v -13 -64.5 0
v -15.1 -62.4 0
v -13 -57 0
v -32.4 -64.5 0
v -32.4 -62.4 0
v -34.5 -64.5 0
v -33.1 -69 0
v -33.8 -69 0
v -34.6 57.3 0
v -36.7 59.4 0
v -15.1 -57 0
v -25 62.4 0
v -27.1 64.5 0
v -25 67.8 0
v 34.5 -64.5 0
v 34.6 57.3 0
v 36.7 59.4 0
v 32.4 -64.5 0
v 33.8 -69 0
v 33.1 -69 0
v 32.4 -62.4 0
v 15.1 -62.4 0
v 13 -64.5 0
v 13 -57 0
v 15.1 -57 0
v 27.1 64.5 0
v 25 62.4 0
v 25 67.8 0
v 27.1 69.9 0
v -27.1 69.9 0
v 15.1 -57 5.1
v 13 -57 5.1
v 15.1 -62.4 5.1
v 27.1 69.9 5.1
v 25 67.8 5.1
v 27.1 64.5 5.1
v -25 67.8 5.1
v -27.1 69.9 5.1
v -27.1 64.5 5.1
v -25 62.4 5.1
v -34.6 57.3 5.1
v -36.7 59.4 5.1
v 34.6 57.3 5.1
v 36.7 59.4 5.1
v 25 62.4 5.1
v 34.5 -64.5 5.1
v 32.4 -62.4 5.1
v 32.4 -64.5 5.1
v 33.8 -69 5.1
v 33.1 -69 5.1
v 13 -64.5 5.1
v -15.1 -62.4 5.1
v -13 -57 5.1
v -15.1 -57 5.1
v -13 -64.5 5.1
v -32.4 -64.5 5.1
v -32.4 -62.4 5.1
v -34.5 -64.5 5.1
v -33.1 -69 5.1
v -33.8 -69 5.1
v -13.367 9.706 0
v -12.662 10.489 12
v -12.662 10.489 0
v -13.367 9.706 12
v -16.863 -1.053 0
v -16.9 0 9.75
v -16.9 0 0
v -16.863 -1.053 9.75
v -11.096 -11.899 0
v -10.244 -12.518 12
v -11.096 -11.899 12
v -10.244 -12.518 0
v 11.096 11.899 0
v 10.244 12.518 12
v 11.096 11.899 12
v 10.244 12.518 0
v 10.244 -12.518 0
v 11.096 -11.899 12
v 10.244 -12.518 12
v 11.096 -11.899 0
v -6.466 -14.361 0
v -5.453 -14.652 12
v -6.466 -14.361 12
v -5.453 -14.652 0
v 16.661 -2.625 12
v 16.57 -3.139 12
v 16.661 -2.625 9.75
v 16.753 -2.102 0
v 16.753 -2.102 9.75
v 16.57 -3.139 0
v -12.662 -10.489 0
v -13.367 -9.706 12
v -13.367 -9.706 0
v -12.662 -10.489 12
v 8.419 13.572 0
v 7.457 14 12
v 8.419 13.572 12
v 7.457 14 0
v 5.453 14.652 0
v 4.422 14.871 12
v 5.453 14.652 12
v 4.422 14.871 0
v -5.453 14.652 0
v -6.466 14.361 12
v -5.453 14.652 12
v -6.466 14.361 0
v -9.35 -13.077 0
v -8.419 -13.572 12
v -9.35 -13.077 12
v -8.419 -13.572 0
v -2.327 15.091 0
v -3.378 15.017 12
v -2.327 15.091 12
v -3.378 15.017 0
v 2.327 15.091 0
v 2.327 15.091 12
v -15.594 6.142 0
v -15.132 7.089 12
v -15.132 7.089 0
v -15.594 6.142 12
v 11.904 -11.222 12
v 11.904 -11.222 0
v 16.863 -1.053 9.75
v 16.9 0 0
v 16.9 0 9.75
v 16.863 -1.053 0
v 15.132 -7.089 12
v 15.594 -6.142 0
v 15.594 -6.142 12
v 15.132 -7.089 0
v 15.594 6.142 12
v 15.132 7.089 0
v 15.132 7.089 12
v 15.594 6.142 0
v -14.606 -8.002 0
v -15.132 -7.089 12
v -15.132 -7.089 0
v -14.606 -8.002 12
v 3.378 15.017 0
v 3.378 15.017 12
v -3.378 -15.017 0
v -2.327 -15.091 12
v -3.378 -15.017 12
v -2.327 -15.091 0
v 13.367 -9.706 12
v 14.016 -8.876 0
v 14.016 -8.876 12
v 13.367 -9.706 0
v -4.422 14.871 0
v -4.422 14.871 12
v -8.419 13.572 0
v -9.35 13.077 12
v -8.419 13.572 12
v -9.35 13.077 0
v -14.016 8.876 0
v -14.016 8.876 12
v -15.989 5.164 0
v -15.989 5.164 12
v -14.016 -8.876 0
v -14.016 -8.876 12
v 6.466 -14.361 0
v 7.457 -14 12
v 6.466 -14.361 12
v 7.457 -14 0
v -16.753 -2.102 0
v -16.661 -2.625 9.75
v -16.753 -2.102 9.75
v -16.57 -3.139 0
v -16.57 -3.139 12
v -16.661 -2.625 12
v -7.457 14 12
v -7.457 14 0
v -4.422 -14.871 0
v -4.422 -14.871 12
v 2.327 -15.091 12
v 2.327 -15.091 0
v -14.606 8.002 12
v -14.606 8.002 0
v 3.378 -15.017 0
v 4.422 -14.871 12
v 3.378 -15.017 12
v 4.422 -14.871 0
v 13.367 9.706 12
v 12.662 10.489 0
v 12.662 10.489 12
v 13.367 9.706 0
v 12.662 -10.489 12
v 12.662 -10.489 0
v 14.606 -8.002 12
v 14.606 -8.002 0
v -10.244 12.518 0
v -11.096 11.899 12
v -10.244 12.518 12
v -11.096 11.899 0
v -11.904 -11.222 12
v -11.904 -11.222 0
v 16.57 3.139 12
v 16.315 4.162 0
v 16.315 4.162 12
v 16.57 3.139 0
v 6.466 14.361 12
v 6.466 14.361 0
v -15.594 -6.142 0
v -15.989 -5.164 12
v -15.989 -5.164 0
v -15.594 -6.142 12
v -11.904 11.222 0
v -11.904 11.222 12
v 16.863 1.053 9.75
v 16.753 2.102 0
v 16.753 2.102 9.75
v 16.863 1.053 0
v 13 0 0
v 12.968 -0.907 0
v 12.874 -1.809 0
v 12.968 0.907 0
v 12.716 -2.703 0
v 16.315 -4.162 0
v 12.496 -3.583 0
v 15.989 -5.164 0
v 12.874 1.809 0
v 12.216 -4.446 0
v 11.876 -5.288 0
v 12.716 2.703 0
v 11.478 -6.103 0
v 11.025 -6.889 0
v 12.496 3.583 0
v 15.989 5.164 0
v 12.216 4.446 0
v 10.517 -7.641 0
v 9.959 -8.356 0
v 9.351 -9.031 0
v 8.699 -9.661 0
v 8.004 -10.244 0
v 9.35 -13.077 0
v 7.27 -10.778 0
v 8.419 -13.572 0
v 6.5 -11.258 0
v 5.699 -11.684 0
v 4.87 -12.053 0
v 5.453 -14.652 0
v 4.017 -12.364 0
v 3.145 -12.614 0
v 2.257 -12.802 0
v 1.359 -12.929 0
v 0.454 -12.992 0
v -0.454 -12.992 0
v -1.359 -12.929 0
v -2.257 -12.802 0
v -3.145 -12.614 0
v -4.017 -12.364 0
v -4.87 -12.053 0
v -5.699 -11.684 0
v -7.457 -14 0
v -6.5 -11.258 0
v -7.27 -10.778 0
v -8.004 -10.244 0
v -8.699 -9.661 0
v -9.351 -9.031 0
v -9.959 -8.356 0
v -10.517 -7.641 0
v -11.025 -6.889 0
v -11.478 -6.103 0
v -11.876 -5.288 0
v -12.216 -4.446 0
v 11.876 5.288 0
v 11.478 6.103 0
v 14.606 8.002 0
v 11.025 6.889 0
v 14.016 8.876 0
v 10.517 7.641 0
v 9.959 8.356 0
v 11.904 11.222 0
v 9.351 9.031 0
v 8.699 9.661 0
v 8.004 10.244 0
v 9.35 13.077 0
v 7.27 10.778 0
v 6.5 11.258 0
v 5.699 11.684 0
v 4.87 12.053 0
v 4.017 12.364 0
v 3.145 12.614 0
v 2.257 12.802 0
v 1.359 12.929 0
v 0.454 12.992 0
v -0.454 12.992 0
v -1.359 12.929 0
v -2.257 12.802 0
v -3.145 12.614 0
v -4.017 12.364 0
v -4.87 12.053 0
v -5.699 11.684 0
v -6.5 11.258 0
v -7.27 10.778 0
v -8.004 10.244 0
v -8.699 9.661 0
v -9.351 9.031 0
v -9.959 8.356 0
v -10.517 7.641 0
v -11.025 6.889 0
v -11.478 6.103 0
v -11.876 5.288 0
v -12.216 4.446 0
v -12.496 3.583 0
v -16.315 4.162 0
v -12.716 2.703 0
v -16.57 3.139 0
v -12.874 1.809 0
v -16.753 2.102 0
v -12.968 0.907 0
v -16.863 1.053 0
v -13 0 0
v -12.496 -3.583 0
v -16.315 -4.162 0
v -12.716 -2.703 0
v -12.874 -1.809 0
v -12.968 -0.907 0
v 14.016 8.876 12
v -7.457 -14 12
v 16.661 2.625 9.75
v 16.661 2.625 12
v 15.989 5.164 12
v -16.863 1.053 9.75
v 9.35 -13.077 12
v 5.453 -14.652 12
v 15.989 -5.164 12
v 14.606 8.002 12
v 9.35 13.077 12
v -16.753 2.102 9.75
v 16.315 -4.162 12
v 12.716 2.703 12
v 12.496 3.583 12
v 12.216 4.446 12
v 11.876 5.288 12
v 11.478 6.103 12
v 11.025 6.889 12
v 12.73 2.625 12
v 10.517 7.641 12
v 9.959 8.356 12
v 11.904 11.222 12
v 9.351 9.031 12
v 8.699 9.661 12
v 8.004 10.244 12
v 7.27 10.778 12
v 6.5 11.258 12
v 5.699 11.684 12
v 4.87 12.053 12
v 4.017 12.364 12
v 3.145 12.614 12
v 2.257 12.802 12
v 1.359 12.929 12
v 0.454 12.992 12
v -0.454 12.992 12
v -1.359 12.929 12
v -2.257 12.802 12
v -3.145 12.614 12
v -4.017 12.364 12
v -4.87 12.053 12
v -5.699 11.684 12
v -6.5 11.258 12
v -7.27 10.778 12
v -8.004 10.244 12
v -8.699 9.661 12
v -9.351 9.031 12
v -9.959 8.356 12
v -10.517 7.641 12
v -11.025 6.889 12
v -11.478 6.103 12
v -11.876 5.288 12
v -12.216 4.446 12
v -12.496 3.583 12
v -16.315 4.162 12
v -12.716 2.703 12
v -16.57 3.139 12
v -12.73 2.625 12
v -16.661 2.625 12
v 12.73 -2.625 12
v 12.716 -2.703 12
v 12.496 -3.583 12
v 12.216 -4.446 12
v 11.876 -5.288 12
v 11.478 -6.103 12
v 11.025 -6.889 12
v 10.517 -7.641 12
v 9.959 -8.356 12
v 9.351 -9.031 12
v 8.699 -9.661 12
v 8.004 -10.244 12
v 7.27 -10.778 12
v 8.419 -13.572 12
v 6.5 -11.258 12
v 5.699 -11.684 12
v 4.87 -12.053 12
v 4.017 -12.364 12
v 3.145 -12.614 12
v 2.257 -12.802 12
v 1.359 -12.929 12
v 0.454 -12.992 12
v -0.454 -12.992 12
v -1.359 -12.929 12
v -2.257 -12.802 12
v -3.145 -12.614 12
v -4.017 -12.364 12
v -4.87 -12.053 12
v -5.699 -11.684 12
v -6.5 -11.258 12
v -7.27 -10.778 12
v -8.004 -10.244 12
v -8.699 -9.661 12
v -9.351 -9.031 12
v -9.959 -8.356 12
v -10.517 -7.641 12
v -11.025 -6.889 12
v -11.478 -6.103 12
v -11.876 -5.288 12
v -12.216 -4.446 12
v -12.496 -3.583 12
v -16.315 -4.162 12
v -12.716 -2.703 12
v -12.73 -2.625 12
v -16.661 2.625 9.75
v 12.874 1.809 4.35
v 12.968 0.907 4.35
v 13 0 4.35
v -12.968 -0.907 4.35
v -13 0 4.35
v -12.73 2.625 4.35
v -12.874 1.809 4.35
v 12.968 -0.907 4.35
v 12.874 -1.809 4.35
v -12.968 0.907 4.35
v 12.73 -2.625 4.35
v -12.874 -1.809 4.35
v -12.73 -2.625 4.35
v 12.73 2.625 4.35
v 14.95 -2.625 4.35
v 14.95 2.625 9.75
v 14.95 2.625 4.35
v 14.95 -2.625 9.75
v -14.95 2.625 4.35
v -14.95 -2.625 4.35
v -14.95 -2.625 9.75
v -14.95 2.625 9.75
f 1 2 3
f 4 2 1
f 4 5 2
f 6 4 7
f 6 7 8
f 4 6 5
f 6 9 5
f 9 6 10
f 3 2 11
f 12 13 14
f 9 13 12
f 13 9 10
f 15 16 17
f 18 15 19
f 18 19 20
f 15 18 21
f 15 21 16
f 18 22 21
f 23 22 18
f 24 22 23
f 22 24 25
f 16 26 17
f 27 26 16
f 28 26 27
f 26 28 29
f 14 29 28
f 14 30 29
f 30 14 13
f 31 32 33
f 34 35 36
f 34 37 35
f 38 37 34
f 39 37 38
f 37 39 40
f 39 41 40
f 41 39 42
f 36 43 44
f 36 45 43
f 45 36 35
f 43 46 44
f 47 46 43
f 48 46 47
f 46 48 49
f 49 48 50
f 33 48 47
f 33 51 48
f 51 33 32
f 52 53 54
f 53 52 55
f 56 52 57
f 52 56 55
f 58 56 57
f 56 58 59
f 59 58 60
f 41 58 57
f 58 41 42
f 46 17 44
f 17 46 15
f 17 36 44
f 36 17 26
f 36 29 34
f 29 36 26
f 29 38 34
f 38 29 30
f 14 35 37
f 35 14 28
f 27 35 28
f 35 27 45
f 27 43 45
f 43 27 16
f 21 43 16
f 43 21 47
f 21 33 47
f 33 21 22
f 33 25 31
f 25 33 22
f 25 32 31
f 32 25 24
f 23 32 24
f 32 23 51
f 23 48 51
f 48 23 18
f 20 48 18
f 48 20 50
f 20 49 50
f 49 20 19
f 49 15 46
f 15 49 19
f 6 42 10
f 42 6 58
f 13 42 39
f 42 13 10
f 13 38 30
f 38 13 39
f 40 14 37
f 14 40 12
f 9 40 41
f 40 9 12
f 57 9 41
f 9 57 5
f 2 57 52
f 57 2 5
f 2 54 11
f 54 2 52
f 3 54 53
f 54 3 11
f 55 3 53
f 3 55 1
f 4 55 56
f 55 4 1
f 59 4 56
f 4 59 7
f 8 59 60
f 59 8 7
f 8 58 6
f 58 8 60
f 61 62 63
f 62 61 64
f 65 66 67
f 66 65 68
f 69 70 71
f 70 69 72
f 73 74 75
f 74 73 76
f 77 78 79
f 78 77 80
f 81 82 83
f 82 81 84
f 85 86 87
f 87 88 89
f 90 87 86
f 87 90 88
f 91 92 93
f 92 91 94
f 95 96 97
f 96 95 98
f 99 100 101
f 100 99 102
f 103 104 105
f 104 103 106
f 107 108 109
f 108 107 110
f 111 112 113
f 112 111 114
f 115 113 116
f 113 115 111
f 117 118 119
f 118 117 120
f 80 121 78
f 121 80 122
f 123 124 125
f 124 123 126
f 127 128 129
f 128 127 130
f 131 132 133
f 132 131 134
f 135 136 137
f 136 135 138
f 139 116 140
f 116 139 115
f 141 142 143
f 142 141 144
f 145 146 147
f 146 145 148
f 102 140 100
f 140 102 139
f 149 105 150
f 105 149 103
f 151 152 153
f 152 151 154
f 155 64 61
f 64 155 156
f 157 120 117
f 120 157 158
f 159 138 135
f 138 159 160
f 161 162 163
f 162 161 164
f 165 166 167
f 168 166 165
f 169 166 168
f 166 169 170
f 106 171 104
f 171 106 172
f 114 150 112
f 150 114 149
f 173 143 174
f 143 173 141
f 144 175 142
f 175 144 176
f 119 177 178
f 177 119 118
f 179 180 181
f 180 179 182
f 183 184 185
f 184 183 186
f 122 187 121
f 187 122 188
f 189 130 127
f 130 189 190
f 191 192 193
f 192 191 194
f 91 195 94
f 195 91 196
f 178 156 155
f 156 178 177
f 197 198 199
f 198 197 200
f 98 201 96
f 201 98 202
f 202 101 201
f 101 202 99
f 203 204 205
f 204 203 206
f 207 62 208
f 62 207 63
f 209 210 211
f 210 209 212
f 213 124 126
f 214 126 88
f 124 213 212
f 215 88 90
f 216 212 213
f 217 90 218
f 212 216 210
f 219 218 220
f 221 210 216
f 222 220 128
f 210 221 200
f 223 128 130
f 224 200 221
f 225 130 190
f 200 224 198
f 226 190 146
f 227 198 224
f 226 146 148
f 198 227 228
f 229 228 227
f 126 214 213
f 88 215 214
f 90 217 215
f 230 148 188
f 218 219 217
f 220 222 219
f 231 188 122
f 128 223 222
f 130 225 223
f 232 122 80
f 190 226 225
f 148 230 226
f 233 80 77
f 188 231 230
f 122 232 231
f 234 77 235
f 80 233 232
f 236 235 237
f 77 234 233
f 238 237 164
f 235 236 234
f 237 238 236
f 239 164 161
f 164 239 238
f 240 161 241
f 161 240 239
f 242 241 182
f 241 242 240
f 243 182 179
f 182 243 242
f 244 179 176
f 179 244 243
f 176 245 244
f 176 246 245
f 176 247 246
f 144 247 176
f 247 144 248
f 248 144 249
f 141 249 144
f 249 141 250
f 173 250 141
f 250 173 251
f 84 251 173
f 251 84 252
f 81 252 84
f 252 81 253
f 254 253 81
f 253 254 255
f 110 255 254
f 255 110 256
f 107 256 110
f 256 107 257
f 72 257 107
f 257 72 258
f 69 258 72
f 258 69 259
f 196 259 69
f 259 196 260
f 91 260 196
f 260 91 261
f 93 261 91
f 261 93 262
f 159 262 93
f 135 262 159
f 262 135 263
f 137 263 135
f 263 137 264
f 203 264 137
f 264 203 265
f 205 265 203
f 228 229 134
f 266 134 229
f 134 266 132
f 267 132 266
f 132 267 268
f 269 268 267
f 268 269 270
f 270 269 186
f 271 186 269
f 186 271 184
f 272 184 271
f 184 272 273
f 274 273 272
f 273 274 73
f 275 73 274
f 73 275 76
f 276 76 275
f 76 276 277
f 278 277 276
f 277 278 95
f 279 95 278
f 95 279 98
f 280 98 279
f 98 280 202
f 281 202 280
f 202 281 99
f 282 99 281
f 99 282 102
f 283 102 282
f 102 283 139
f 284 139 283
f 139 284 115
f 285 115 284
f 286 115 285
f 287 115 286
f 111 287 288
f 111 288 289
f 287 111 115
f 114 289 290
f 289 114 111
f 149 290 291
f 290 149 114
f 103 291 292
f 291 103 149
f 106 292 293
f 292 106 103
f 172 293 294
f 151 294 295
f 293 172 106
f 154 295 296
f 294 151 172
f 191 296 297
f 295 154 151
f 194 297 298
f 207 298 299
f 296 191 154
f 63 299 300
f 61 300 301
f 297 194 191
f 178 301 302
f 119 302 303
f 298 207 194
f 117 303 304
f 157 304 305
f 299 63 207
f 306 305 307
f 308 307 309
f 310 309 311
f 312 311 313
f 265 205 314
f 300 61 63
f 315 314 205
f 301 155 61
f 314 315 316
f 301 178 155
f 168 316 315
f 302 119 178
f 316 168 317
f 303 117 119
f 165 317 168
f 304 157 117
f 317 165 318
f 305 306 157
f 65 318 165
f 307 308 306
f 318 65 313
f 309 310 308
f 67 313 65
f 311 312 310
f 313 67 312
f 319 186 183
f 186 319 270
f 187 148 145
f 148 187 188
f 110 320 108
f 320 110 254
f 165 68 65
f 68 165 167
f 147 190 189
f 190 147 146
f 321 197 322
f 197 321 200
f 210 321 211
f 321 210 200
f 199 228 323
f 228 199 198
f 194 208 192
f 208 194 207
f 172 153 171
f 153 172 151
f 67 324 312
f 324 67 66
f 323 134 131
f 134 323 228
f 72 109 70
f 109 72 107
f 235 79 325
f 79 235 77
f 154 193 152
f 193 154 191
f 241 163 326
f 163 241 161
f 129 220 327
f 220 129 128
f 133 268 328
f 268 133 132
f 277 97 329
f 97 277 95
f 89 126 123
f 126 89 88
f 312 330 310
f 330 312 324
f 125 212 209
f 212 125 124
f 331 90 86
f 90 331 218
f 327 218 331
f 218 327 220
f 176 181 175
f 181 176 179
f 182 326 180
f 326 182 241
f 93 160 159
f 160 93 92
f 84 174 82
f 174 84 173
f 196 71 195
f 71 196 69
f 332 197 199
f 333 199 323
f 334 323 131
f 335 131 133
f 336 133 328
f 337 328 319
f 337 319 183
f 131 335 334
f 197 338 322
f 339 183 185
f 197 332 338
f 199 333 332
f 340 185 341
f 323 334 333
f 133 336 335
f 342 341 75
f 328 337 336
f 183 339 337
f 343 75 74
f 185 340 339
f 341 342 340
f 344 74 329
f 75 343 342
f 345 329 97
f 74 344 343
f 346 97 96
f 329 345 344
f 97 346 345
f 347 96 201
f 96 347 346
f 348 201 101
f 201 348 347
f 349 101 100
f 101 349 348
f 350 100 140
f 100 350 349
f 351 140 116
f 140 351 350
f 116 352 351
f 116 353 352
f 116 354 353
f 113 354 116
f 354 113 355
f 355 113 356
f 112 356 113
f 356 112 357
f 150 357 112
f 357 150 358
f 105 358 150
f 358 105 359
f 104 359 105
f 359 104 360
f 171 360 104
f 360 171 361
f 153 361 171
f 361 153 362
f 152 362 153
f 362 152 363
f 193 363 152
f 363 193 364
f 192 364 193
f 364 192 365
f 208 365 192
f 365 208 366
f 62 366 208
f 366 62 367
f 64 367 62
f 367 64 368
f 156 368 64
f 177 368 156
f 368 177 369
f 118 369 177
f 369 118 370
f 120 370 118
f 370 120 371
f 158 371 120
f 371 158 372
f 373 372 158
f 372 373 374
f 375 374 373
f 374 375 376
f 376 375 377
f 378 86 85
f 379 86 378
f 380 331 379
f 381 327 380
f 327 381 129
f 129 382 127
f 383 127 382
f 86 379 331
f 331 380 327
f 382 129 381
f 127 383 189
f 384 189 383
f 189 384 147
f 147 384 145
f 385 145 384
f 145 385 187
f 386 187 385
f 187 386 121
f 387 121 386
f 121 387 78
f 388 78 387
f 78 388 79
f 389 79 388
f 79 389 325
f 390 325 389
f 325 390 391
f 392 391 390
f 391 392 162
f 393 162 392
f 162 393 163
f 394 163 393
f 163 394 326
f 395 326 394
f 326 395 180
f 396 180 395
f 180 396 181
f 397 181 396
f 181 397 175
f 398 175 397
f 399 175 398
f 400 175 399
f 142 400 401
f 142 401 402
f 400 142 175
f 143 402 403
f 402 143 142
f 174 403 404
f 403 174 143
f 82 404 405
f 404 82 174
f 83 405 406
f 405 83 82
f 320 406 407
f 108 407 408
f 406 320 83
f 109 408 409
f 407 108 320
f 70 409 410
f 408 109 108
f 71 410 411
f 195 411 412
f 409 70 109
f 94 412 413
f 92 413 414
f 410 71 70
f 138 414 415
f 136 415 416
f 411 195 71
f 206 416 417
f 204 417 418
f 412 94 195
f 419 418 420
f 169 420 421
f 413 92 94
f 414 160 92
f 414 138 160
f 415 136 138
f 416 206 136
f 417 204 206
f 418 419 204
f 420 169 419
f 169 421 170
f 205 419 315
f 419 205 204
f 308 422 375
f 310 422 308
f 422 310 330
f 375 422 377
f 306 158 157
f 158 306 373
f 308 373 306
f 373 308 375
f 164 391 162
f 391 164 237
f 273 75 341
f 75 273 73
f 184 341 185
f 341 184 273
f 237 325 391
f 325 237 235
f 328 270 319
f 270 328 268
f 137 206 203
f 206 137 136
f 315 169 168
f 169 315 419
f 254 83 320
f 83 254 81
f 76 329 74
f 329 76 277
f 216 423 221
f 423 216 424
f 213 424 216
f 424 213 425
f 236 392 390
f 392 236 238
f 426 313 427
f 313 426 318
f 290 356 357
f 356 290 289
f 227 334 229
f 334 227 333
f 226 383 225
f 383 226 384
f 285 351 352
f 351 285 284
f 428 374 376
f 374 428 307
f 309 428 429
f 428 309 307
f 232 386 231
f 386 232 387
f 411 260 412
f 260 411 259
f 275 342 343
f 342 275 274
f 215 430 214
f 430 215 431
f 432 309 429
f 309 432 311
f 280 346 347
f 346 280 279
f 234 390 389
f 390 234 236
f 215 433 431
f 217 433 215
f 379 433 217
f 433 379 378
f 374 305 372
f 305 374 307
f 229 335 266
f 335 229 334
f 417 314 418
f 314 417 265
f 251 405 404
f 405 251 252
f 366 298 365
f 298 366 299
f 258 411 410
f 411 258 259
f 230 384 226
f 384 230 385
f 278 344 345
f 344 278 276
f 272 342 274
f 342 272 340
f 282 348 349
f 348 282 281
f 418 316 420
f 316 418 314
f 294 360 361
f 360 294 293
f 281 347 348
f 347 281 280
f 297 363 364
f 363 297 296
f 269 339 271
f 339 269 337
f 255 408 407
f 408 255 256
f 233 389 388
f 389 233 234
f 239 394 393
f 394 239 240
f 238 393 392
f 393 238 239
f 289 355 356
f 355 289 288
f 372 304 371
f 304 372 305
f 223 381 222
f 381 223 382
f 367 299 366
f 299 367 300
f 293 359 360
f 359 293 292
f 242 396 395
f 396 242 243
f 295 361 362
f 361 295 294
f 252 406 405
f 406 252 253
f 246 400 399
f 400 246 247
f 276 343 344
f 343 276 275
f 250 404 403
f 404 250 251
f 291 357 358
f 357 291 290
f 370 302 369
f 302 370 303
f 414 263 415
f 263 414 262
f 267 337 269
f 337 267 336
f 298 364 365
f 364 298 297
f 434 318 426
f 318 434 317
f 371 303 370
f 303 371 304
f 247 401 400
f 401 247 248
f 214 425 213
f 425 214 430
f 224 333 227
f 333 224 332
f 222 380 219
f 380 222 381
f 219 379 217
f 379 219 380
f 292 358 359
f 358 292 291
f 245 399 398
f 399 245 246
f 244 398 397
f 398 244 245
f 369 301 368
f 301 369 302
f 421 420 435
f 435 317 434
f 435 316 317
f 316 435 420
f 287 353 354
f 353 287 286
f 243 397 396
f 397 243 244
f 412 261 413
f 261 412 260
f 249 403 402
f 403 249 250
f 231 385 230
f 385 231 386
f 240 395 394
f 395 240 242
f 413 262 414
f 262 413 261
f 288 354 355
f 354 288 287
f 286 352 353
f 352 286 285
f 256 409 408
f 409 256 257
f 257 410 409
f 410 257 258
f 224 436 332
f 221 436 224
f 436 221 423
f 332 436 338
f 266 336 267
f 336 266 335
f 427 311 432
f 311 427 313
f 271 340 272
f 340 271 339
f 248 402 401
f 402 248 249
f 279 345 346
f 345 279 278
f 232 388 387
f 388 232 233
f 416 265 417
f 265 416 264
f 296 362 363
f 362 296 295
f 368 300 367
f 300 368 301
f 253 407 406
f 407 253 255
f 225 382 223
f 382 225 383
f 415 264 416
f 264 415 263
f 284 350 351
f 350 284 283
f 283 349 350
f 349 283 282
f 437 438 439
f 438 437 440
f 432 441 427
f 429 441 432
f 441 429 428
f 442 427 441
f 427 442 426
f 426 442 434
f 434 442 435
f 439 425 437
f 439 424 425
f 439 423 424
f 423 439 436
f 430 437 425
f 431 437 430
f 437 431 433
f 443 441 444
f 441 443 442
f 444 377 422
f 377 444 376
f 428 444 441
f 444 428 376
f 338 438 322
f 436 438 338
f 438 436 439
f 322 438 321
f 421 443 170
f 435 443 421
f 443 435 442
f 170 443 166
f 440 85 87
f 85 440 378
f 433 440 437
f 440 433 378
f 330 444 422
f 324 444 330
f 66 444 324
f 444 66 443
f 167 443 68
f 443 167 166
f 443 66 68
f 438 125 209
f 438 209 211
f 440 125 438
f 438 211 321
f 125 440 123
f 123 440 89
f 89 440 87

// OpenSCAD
top_diameter    =  50.0;  // Diameter of top opening (corrected)
shoulder_length =   7.5;  // Exterior length of shoulder
shoulder_slump  =   5.1;  // How far down the lower edge of the shoulder goes
neck_height     =   5.4;  // How high up the neck of the top frame protrudes
light_diameter  =  26.0;  // Exterior diameter of flashlight head (corrected)
interior_height = 129.0;  // From top of bottom wire posts to top shoulder

frame_width     =   5.1;  // Width of the A-frame (along latitudinal direction)
frame_thickness =   2.1;  // Thickness of A-frame (inwards to center)
peg_height      =   5.4;  // Height of peg connecting A-frame with collet
peg_thickness   =   1.5;  // Thickness of peg connecting A-frame with collet
peg_depth       =   4.5;  // How far down the peg goes into the post
bottom_post_gap =  69.0;  // Gap between wire posts on bottom support
// Off by 9mm???

collet_small_thickness = 2.1;
collet_large_thickness = peg_thickness + collet_small_thickness;
collet_height = frame_thickness + peg_height + 4.5;

top_radius = top_diameter / 2;
light_radius = light_diameter / 2;
bottom_post_radius = bottom_post_gap / 2;

cgap = 0.15;  // Correction gap
cgap2 = cgap * 2;

e = 0.1;
e2 = e * 2;
$fn = 90;

module aframe() {
  r = light_radius;     // TODO: should be diffuser radius
  t = frame_thickness;
  t2 = t * 2;
  module aframe_polygon() {
    polygon([
      [r, t + peg_height],
      [r + t, t + peg_height],
      [r + t, t],
      [bottom_post_radius - t, t],
      [top_radius + t + shoulder_length, interior_height - t - shoulder_slump],
      [top_radius, interior_height - t],
      [top_radius, interior_height + neck_height - t],
      [0, interior_height + neck_height - t],
      // TODO: would be nice to have a decorative hanging/finger loop
      [0, interior_height + neck_height],
      [top_radius + t, interior_height + neck_height],
      [top_radius + t, interior_height],
      [top_radius + t2 + shoulder_length, interior_height - shoulder_slump],
      [bottom_post_radius, 0],
      [bottom_post_radius - (t / 3), -peg_depth],
      [bottom_post_radius - (2 * t / 3), -peg_depth],
      [bottom_post_radius - t, 0],
      // TODO: actual post
      [r, 0]
    ]);
  }
  translate([0, 0, -frame_width / 2]) {
    linear_extrude(frame_width) aframe_polygon();
    mirror([1, 0, 0]) linear_extrude(frame_width) aframe_polygon();
  }
}

module collet() {
  r = light_radius;  // TODO: should be diffuser radius
  short_length = (r + collet_small_thickness) * 2;
  long_length = (r + collet_large_thickness) * 2;
  cutout_upper_length = long_length - (peg_thickness * 2) - cgap2;
  cutout_width = frame_width + cgap;
  difference() {
    hull() {
      translate([-collet_large_thickness / 2, 0, 0]) {
        cylinder(r = short_length / 2, h = collet_height);
      }
      translate([collet_large_thickness / 2, 0, 0]) {
        cylinder(r = short_length / 2, h = collet_height);
      }
    }
    // Cut out flashlight diffuser cylinder
    translate([0, 0, -e]) cylinder(r = r, h = collet_height + e2);
    // Cut out peg insert (upper peg insertion portion)
    translate([-cutout_upper_length / 2, -cutout_width / 2, -e]) {
      cube([cutout_upper_length, cutout_width, e + frame_thickness + peg_height + cgap]);
    }
    // Cut out peg insert (lower frame portion)
    translate([-(long_length / 2) - 1, -cutout_width / 2, -e]) {
      cube([1 + long_length + 1, cutout_width, e + frame_thickness + cgap]);
    }
  }
}

module visual() {
  rotate(90, [1, 0, 0]) aframe();
  translate([0, 0, peg_height + 10]) collet();
}

module printable() {
  translate([0, -interior_height / 2, frame_width / 2]) aframe();
  translate([0, 0, collet_height]) mirror([0, 0, 1]) collet();
}

printable();
